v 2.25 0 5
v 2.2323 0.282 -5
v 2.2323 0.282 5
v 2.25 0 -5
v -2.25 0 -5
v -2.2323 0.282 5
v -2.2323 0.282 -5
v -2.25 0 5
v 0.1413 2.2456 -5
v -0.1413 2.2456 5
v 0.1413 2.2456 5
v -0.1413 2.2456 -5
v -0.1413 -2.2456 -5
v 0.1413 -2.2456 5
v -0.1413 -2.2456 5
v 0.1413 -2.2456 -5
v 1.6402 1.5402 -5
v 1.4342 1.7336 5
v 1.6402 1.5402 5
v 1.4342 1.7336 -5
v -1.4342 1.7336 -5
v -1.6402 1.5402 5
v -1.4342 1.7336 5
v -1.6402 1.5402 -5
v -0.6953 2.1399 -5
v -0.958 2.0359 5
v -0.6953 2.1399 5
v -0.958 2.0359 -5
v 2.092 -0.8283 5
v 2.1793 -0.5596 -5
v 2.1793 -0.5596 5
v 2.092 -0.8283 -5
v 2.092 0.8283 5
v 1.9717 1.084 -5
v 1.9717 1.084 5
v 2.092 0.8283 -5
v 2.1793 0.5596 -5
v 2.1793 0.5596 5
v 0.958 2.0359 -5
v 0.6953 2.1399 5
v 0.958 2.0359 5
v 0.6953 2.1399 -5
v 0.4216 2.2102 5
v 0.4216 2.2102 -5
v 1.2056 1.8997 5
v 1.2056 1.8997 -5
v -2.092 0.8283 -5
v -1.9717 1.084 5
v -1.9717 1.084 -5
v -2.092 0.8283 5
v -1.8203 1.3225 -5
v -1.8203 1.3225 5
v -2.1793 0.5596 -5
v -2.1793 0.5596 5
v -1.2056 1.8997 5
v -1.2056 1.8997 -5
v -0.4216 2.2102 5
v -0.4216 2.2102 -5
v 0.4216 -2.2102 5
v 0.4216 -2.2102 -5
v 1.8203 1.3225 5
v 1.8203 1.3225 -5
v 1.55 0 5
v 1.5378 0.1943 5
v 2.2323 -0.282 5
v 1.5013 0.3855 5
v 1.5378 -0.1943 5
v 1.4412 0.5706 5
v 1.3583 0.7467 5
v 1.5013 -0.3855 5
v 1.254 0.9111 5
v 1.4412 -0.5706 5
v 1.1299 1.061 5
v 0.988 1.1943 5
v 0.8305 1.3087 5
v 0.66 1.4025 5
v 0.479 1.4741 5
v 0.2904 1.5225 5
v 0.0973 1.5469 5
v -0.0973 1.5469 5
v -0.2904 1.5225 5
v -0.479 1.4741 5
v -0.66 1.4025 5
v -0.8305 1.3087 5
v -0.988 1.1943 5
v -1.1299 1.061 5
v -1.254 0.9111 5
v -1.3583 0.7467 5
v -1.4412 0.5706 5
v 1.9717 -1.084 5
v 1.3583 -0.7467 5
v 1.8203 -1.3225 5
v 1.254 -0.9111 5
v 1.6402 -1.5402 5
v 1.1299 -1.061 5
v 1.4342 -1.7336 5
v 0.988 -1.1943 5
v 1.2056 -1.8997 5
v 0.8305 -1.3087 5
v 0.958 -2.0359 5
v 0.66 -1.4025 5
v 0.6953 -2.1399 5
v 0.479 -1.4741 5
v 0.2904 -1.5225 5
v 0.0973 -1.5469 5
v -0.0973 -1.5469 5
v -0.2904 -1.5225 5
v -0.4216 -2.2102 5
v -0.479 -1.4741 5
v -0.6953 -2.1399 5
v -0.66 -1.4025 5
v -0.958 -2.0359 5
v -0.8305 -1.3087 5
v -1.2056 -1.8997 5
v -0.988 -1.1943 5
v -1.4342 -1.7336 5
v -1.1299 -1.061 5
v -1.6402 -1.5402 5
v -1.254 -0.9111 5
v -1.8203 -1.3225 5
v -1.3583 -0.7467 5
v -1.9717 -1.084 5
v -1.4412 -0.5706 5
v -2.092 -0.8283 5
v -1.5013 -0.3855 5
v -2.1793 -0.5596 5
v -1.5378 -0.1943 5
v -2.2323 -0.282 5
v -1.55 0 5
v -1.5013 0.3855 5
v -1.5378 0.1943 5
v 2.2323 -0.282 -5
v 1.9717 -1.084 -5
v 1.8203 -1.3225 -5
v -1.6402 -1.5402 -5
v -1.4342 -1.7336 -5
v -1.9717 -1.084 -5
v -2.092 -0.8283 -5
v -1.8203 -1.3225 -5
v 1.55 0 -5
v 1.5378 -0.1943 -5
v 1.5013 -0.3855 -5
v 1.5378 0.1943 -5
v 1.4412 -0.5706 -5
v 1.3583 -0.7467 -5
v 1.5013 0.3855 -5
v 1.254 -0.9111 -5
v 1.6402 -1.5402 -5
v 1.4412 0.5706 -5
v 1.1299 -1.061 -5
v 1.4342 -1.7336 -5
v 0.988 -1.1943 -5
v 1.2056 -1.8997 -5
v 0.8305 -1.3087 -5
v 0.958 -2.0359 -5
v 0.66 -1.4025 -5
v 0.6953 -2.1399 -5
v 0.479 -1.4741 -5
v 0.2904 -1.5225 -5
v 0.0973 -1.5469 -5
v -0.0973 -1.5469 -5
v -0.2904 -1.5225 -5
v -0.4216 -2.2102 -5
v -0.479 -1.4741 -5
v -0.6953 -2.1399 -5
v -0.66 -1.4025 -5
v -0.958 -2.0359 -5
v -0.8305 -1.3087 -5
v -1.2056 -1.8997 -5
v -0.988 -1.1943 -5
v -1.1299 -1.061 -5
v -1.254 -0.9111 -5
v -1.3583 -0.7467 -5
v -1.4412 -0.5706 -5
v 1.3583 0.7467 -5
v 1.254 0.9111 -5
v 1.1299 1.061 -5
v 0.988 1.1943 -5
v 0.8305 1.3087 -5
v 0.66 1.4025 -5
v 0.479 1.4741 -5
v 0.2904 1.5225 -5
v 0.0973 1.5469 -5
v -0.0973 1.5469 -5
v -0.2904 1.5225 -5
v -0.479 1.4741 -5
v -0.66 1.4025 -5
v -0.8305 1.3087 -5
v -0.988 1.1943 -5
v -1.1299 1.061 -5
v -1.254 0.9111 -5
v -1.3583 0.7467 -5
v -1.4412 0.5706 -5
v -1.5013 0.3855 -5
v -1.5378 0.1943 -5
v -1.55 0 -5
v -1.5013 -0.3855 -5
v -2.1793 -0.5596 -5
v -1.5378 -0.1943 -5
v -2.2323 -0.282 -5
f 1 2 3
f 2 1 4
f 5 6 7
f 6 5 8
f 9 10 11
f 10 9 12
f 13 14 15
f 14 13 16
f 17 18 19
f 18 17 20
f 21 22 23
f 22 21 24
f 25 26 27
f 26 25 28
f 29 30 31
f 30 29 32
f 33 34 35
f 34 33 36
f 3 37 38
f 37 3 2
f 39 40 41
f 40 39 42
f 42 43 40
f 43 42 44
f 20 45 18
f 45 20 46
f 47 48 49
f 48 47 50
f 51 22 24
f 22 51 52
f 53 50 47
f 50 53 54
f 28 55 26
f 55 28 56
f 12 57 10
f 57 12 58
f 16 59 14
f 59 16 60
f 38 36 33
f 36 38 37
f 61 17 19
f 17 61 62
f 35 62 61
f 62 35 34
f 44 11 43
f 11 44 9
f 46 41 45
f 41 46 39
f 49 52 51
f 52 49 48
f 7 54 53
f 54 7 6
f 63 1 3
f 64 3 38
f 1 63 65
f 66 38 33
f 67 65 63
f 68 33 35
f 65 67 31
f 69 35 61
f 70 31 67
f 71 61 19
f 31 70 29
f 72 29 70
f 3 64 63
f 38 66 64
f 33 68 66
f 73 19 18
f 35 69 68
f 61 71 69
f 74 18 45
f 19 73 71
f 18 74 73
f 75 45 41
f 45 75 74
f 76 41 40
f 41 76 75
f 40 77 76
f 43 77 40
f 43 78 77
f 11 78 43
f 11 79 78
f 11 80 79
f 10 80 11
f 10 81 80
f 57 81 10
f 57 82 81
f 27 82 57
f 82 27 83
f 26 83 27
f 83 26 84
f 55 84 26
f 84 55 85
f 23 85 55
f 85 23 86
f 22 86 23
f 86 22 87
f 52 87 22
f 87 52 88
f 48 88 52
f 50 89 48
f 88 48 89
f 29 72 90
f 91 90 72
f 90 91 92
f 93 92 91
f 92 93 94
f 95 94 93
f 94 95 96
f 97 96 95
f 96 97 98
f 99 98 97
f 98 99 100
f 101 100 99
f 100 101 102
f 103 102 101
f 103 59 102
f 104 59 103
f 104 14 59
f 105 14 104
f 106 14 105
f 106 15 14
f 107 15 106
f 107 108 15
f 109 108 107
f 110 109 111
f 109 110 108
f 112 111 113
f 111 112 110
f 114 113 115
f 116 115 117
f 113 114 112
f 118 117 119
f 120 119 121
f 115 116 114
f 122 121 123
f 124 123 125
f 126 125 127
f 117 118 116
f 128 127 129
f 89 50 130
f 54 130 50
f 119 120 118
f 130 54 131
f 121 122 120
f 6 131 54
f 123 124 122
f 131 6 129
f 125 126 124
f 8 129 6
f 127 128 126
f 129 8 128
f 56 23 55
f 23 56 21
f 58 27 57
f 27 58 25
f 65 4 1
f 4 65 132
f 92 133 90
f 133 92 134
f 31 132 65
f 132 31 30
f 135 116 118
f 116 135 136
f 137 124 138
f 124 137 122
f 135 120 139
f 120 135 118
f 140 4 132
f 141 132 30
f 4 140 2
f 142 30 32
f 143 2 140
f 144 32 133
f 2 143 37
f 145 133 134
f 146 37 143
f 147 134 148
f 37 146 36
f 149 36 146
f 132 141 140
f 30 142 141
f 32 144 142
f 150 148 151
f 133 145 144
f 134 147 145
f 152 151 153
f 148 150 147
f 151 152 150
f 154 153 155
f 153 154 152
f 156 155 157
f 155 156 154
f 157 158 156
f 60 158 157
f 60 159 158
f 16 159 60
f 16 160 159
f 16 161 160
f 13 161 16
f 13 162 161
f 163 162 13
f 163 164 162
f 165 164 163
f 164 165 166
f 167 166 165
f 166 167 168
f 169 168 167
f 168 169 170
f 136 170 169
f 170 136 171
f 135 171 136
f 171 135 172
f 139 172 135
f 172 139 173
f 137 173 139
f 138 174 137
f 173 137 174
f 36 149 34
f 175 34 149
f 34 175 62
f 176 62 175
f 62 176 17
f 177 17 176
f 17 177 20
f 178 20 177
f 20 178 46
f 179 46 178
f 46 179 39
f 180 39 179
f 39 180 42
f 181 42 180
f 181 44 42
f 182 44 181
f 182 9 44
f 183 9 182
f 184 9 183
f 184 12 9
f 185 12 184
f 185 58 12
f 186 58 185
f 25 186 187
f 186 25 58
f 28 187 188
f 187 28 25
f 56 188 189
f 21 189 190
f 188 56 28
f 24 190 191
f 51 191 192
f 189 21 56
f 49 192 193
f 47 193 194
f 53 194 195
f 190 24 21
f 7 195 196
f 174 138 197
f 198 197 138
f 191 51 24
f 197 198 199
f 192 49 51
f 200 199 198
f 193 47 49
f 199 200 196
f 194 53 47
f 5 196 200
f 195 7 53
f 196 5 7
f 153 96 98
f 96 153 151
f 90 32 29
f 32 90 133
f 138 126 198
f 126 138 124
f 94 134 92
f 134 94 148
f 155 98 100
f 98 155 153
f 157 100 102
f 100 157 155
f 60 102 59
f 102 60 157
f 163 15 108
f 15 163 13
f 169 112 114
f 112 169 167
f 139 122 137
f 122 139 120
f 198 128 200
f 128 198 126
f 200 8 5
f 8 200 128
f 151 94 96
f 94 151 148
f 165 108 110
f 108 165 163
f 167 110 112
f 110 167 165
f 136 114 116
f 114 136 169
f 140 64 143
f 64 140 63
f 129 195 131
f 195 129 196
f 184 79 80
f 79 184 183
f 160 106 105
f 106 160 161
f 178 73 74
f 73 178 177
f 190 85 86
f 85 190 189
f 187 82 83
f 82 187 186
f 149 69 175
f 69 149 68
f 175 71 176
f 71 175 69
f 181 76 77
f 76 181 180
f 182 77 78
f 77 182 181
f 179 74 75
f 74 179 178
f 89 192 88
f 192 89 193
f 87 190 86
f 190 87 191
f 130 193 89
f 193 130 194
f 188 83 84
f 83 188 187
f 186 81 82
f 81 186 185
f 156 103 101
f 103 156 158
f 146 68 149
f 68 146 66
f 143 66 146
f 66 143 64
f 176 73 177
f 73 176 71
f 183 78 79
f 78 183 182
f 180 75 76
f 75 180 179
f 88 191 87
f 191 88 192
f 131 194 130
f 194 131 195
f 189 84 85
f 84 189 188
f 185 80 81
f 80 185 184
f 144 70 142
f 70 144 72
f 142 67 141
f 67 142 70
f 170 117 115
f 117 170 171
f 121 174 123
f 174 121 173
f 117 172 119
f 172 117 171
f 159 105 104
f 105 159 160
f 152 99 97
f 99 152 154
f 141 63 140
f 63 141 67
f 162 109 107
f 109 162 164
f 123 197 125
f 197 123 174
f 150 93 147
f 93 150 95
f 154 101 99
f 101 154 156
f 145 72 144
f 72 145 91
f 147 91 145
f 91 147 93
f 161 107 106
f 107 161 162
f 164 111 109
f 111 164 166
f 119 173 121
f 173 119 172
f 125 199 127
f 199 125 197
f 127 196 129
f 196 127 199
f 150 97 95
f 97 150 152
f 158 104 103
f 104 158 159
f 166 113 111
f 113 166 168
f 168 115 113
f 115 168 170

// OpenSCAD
$fn = 50;


difference() {
	union() {
		translate(v = [0, 0, -5.0000000000]) {
			cylinder(h = 10, r = 2.2500000000);
		}
	}
	union() {
		translate(v = [0, 0, -100.0000000000]) {
			cylinder(h = 200, r = 1.5500000000);
		}
	}
}
